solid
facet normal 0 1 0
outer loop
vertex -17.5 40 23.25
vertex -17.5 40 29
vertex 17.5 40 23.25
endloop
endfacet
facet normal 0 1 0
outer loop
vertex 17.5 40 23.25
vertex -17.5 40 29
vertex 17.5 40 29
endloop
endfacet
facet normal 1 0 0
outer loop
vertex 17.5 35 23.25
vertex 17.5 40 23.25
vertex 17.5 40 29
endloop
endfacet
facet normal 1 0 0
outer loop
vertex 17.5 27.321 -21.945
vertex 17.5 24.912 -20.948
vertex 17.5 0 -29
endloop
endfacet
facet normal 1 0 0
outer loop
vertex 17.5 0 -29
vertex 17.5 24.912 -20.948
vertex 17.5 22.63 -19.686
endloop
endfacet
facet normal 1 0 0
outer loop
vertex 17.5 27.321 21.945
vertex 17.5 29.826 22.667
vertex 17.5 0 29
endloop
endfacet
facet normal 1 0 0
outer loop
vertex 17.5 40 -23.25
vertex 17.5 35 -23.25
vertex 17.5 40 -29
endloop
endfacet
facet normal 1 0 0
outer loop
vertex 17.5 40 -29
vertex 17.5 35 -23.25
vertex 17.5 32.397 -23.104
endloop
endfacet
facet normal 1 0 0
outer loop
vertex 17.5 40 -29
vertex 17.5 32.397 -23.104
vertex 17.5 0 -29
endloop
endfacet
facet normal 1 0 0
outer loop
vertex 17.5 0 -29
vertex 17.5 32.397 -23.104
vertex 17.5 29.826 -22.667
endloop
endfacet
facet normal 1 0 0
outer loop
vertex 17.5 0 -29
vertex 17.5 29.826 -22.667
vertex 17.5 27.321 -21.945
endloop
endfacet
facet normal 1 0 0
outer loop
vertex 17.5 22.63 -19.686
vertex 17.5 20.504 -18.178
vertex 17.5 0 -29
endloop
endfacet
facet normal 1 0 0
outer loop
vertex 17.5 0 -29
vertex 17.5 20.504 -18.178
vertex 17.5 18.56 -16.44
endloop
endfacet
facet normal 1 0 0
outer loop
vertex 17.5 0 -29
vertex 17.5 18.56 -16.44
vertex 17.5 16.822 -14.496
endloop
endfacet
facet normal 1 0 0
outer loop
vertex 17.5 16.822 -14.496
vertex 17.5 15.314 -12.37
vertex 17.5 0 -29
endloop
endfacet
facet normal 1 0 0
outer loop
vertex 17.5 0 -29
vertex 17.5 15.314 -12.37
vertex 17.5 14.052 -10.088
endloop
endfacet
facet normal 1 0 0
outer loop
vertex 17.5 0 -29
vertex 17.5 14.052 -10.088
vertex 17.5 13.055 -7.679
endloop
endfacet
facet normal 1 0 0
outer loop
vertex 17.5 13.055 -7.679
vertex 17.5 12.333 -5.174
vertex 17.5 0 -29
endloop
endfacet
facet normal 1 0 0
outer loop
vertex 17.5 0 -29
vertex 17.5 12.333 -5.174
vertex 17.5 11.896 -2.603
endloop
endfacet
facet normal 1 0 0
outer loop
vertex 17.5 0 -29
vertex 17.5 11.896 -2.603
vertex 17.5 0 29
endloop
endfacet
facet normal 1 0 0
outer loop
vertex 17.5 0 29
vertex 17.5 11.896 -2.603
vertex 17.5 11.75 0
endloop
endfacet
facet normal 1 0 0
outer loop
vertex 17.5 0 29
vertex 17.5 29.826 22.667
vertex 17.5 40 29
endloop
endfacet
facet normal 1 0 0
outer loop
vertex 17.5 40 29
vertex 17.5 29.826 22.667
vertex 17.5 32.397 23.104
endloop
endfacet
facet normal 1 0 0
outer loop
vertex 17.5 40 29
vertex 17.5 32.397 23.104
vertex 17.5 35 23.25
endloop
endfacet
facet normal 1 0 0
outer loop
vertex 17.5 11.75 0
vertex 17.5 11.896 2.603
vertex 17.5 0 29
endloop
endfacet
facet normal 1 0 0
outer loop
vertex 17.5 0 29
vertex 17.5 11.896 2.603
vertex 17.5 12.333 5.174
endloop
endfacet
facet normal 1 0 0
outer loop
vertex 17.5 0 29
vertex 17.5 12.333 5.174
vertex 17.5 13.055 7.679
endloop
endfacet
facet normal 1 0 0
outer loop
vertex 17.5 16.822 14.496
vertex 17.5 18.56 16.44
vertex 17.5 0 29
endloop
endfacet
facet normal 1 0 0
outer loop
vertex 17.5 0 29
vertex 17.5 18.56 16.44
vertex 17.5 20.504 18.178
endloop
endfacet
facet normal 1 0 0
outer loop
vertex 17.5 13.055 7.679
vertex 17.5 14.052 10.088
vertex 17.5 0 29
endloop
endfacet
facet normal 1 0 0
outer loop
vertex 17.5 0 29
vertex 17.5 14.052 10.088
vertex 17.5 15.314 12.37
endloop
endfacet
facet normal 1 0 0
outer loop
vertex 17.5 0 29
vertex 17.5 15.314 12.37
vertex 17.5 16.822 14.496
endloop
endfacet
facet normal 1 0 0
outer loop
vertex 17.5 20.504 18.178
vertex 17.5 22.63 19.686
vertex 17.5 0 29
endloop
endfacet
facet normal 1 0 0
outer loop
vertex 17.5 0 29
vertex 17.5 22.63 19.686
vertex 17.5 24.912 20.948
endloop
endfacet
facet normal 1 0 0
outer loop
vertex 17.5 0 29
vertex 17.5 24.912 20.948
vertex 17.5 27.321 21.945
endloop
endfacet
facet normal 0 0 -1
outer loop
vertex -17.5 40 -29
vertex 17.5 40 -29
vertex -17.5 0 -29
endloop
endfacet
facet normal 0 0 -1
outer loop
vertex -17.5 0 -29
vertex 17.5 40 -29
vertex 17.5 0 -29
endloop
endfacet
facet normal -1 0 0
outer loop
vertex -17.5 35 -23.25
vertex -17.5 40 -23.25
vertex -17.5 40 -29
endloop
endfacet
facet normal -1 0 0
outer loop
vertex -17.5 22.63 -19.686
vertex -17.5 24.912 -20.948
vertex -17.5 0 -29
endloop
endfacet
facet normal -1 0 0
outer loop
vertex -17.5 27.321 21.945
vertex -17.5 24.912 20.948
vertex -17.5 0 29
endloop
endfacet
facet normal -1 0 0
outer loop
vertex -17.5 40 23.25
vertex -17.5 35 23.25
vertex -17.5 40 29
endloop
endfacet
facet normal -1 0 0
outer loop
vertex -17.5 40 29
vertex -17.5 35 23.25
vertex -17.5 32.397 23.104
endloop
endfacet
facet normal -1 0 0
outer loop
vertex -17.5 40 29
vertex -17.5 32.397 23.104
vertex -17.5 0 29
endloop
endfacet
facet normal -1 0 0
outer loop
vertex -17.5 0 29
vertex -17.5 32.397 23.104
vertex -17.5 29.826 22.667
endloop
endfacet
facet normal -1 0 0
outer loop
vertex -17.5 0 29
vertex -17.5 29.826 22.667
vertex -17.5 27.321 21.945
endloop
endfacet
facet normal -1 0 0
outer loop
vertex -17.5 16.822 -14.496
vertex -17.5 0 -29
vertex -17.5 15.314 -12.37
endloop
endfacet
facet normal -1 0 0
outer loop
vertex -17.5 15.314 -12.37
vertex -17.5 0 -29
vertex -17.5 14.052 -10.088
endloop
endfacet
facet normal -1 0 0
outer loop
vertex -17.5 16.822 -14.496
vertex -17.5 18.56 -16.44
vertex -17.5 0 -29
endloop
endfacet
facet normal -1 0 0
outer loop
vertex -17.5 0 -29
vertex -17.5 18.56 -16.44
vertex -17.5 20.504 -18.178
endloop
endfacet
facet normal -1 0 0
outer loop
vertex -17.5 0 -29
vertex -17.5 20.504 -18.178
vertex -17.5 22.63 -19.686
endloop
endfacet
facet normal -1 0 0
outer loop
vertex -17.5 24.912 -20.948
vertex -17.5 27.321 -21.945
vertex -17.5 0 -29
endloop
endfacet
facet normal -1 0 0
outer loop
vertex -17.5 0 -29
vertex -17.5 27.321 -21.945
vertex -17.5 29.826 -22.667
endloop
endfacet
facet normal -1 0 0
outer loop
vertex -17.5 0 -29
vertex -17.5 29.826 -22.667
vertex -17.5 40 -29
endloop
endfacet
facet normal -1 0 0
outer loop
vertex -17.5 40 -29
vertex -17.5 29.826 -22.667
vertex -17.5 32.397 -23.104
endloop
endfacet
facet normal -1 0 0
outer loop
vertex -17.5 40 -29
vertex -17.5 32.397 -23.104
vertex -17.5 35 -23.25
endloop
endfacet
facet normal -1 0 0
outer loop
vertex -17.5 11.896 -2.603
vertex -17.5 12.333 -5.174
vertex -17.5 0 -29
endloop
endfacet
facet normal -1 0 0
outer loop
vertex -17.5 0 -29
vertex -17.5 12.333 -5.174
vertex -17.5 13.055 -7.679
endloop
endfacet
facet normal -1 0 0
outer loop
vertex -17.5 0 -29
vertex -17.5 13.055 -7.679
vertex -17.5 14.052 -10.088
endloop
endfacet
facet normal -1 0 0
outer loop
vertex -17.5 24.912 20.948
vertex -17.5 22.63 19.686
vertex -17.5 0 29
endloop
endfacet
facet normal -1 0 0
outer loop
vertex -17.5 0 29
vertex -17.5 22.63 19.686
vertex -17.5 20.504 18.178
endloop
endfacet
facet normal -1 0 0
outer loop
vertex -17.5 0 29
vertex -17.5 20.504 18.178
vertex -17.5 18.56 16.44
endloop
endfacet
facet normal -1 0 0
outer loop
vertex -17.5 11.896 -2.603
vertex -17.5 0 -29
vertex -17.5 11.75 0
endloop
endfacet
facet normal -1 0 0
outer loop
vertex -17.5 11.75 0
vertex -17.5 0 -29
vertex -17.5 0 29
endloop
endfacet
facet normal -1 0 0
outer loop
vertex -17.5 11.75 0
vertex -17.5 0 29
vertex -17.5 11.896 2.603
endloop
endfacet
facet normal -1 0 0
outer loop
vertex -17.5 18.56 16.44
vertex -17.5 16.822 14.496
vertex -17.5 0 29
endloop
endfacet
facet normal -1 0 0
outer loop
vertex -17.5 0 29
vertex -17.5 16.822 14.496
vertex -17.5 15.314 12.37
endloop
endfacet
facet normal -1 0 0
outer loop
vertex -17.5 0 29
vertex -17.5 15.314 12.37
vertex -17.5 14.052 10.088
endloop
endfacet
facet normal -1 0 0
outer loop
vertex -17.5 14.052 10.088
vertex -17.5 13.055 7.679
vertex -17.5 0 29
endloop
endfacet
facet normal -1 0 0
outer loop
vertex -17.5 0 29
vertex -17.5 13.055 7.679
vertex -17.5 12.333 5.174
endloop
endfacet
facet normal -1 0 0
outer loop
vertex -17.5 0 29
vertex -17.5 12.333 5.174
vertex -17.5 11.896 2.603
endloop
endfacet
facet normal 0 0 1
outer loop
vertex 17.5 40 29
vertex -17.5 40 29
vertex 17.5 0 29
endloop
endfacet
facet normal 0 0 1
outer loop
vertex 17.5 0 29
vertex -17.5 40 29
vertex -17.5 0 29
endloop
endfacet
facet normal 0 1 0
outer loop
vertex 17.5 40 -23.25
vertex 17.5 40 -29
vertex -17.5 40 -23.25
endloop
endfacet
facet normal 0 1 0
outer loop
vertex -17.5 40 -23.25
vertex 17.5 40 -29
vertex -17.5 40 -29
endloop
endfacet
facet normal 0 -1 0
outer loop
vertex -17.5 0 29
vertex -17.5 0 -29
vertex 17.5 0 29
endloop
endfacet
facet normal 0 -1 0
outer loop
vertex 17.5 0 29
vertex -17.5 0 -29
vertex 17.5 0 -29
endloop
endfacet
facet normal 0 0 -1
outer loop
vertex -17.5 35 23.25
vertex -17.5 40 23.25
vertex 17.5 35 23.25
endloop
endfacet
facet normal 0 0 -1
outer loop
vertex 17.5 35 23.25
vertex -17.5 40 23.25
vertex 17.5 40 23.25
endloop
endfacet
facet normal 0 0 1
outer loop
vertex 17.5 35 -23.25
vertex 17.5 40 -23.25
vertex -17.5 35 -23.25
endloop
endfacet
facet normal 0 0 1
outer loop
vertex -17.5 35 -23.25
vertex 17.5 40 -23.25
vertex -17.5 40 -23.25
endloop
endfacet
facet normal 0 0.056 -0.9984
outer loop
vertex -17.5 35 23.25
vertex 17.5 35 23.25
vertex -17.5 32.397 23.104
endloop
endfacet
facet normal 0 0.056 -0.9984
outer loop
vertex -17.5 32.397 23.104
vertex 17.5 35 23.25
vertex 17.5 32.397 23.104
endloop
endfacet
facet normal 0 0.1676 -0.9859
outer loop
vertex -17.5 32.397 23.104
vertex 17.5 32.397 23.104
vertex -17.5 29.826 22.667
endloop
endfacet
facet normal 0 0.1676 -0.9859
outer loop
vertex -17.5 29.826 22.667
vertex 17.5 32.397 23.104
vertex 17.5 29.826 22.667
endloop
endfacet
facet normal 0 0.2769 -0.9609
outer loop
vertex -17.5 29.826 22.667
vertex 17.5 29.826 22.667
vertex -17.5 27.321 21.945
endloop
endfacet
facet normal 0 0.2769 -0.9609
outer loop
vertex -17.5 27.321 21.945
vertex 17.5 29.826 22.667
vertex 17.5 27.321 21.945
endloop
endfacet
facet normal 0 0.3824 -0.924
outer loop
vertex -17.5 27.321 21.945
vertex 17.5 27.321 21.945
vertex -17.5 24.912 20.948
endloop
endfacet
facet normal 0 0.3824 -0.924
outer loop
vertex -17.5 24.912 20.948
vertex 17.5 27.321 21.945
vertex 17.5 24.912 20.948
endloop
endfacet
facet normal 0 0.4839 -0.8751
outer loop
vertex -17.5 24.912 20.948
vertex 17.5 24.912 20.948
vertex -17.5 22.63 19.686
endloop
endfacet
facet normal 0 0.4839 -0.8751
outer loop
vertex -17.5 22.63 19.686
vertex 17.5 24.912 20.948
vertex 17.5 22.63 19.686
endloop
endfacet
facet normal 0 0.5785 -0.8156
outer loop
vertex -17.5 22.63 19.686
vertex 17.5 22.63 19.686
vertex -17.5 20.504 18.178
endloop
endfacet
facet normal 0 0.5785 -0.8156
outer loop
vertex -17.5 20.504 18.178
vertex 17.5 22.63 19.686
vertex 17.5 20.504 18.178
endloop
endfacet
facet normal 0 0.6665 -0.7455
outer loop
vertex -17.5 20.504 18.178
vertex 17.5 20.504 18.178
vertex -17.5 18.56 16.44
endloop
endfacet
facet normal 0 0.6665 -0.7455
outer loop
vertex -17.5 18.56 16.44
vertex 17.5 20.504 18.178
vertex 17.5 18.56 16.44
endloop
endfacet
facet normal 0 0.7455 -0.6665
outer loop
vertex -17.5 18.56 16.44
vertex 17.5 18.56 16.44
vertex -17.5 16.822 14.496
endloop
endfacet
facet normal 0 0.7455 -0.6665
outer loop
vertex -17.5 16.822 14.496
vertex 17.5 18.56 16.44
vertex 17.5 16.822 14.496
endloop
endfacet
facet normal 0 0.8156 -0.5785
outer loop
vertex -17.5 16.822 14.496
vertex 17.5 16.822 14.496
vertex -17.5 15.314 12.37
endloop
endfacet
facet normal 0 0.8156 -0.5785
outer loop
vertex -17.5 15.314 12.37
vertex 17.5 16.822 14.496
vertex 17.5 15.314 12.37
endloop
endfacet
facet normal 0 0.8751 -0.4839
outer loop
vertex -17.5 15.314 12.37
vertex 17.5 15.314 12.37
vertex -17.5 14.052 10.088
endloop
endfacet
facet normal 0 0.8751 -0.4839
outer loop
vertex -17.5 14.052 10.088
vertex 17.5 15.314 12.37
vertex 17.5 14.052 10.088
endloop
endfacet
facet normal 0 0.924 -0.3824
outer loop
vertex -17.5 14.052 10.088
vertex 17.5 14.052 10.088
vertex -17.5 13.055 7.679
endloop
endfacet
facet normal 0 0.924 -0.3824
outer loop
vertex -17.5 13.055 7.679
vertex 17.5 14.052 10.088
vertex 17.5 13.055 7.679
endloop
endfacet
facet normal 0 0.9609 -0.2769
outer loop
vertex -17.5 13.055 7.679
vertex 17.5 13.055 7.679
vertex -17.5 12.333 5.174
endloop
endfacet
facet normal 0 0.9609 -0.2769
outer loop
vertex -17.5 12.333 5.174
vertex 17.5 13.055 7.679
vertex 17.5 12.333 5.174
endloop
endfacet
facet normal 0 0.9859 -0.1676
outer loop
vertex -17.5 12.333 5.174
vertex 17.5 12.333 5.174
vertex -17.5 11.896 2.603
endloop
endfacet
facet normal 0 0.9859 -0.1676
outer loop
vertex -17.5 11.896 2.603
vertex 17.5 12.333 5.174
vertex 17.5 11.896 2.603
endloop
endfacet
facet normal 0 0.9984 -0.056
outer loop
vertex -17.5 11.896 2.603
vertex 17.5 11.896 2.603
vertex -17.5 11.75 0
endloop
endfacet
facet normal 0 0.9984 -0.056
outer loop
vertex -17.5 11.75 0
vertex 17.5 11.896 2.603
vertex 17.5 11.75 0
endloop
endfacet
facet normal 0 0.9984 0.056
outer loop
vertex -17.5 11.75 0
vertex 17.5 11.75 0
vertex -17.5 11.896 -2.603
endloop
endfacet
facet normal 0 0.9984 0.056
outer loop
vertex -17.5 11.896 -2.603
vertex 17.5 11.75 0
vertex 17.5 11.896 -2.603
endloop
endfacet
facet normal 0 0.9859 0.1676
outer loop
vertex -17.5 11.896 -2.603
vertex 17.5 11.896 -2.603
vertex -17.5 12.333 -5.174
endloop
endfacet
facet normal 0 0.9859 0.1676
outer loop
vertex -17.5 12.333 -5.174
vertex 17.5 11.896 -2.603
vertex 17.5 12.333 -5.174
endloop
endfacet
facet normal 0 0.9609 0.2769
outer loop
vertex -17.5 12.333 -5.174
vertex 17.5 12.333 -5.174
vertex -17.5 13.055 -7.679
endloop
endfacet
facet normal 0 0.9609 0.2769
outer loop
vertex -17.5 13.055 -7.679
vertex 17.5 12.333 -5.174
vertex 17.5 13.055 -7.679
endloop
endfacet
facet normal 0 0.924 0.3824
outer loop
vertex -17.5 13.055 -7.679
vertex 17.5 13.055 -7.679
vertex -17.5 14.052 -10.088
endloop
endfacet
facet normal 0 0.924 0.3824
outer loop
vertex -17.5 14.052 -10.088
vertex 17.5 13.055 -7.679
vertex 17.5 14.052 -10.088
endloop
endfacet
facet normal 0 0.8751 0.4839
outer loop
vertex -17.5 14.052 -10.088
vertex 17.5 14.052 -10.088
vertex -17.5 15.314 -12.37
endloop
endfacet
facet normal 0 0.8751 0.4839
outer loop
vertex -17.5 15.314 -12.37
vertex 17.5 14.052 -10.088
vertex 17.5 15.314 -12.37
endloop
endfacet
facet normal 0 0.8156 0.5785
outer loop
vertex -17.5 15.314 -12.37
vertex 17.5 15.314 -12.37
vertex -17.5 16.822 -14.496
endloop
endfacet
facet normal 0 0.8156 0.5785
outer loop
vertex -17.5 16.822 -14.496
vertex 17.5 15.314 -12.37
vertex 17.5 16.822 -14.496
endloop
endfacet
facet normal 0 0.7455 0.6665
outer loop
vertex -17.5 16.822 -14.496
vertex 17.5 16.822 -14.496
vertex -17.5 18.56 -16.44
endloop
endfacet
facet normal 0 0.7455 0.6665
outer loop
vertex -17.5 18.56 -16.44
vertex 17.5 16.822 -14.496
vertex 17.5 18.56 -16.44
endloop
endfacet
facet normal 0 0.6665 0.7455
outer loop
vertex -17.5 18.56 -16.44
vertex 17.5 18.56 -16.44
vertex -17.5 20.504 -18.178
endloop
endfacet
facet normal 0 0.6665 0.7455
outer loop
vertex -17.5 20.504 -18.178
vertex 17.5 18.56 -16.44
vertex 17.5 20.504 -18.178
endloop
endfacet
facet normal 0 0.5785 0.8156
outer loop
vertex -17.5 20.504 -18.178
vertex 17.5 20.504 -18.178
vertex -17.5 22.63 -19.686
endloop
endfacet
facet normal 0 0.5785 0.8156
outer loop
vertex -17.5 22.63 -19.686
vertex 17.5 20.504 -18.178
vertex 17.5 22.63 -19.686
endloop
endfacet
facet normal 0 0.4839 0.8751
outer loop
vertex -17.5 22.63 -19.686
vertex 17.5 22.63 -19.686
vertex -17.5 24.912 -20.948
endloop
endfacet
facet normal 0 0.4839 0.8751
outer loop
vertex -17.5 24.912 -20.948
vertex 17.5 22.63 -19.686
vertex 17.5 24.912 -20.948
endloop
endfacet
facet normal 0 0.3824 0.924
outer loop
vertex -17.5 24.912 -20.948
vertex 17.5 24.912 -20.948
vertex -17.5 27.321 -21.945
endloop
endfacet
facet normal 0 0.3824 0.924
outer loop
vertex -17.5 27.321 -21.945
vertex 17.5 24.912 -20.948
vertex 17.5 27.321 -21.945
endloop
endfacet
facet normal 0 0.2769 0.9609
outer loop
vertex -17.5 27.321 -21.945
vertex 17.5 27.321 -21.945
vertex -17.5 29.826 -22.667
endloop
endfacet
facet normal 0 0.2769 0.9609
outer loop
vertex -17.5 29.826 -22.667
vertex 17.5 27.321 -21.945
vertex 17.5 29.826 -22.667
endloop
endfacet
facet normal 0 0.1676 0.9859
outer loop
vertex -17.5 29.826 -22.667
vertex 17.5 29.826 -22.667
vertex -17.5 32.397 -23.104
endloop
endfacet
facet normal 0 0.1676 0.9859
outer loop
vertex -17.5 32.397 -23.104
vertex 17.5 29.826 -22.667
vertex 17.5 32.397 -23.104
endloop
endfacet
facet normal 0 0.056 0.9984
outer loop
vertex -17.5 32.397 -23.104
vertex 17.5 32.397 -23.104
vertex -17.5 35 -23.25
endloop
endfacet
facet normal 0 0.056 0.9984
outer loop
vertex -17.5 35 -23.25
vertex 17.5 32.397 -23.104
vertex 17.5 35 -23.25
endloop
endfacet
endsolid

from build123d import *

# Parameters (mm, degrees)
SKETCH1_W           = 35
SKETCH1_H           = 58
BOSS_EXTRUDE1_DEPTH = 40
CUT_EXTRUDE1_DEPTH  = 61.547502013


with BuildPart() as part:
    # Sketch1 → Boss-Extrude1 (new body)
    with BuildSketch(Plane(origin=(0, 0, 0), x_dir=(1, 0, 0), z_dir=(0, 1, 0))):
        Rectangle(SKETCH1_W, SKETCH1_H)
    extrude(amount=BOSS_EXTRUDE1_DEPTH)

    # Sketch2 → Cut-Extrude1 (cut, through all)
    with BuildSketch(Plane(origin=(17.5, 0, 0), x_dir=(0, 0, -1), z_dir=(1, 0, 0))):
        with BuildLine():
            Line((-23.25, 35), (-23.25, 58.25))
            Line((-23.25, 58.25), (23.25, 58.25))
            Line((23.25, 58.25), (23.25, 35))
            ThreePointArc((23.25, 35), (0, 11.75), (-23.25, 35))
        make_face()
    extrude(amount=-CUT_EXTRUDE1_DEPTH, mode=Mode.SUBTRACT)


solid = part.part
